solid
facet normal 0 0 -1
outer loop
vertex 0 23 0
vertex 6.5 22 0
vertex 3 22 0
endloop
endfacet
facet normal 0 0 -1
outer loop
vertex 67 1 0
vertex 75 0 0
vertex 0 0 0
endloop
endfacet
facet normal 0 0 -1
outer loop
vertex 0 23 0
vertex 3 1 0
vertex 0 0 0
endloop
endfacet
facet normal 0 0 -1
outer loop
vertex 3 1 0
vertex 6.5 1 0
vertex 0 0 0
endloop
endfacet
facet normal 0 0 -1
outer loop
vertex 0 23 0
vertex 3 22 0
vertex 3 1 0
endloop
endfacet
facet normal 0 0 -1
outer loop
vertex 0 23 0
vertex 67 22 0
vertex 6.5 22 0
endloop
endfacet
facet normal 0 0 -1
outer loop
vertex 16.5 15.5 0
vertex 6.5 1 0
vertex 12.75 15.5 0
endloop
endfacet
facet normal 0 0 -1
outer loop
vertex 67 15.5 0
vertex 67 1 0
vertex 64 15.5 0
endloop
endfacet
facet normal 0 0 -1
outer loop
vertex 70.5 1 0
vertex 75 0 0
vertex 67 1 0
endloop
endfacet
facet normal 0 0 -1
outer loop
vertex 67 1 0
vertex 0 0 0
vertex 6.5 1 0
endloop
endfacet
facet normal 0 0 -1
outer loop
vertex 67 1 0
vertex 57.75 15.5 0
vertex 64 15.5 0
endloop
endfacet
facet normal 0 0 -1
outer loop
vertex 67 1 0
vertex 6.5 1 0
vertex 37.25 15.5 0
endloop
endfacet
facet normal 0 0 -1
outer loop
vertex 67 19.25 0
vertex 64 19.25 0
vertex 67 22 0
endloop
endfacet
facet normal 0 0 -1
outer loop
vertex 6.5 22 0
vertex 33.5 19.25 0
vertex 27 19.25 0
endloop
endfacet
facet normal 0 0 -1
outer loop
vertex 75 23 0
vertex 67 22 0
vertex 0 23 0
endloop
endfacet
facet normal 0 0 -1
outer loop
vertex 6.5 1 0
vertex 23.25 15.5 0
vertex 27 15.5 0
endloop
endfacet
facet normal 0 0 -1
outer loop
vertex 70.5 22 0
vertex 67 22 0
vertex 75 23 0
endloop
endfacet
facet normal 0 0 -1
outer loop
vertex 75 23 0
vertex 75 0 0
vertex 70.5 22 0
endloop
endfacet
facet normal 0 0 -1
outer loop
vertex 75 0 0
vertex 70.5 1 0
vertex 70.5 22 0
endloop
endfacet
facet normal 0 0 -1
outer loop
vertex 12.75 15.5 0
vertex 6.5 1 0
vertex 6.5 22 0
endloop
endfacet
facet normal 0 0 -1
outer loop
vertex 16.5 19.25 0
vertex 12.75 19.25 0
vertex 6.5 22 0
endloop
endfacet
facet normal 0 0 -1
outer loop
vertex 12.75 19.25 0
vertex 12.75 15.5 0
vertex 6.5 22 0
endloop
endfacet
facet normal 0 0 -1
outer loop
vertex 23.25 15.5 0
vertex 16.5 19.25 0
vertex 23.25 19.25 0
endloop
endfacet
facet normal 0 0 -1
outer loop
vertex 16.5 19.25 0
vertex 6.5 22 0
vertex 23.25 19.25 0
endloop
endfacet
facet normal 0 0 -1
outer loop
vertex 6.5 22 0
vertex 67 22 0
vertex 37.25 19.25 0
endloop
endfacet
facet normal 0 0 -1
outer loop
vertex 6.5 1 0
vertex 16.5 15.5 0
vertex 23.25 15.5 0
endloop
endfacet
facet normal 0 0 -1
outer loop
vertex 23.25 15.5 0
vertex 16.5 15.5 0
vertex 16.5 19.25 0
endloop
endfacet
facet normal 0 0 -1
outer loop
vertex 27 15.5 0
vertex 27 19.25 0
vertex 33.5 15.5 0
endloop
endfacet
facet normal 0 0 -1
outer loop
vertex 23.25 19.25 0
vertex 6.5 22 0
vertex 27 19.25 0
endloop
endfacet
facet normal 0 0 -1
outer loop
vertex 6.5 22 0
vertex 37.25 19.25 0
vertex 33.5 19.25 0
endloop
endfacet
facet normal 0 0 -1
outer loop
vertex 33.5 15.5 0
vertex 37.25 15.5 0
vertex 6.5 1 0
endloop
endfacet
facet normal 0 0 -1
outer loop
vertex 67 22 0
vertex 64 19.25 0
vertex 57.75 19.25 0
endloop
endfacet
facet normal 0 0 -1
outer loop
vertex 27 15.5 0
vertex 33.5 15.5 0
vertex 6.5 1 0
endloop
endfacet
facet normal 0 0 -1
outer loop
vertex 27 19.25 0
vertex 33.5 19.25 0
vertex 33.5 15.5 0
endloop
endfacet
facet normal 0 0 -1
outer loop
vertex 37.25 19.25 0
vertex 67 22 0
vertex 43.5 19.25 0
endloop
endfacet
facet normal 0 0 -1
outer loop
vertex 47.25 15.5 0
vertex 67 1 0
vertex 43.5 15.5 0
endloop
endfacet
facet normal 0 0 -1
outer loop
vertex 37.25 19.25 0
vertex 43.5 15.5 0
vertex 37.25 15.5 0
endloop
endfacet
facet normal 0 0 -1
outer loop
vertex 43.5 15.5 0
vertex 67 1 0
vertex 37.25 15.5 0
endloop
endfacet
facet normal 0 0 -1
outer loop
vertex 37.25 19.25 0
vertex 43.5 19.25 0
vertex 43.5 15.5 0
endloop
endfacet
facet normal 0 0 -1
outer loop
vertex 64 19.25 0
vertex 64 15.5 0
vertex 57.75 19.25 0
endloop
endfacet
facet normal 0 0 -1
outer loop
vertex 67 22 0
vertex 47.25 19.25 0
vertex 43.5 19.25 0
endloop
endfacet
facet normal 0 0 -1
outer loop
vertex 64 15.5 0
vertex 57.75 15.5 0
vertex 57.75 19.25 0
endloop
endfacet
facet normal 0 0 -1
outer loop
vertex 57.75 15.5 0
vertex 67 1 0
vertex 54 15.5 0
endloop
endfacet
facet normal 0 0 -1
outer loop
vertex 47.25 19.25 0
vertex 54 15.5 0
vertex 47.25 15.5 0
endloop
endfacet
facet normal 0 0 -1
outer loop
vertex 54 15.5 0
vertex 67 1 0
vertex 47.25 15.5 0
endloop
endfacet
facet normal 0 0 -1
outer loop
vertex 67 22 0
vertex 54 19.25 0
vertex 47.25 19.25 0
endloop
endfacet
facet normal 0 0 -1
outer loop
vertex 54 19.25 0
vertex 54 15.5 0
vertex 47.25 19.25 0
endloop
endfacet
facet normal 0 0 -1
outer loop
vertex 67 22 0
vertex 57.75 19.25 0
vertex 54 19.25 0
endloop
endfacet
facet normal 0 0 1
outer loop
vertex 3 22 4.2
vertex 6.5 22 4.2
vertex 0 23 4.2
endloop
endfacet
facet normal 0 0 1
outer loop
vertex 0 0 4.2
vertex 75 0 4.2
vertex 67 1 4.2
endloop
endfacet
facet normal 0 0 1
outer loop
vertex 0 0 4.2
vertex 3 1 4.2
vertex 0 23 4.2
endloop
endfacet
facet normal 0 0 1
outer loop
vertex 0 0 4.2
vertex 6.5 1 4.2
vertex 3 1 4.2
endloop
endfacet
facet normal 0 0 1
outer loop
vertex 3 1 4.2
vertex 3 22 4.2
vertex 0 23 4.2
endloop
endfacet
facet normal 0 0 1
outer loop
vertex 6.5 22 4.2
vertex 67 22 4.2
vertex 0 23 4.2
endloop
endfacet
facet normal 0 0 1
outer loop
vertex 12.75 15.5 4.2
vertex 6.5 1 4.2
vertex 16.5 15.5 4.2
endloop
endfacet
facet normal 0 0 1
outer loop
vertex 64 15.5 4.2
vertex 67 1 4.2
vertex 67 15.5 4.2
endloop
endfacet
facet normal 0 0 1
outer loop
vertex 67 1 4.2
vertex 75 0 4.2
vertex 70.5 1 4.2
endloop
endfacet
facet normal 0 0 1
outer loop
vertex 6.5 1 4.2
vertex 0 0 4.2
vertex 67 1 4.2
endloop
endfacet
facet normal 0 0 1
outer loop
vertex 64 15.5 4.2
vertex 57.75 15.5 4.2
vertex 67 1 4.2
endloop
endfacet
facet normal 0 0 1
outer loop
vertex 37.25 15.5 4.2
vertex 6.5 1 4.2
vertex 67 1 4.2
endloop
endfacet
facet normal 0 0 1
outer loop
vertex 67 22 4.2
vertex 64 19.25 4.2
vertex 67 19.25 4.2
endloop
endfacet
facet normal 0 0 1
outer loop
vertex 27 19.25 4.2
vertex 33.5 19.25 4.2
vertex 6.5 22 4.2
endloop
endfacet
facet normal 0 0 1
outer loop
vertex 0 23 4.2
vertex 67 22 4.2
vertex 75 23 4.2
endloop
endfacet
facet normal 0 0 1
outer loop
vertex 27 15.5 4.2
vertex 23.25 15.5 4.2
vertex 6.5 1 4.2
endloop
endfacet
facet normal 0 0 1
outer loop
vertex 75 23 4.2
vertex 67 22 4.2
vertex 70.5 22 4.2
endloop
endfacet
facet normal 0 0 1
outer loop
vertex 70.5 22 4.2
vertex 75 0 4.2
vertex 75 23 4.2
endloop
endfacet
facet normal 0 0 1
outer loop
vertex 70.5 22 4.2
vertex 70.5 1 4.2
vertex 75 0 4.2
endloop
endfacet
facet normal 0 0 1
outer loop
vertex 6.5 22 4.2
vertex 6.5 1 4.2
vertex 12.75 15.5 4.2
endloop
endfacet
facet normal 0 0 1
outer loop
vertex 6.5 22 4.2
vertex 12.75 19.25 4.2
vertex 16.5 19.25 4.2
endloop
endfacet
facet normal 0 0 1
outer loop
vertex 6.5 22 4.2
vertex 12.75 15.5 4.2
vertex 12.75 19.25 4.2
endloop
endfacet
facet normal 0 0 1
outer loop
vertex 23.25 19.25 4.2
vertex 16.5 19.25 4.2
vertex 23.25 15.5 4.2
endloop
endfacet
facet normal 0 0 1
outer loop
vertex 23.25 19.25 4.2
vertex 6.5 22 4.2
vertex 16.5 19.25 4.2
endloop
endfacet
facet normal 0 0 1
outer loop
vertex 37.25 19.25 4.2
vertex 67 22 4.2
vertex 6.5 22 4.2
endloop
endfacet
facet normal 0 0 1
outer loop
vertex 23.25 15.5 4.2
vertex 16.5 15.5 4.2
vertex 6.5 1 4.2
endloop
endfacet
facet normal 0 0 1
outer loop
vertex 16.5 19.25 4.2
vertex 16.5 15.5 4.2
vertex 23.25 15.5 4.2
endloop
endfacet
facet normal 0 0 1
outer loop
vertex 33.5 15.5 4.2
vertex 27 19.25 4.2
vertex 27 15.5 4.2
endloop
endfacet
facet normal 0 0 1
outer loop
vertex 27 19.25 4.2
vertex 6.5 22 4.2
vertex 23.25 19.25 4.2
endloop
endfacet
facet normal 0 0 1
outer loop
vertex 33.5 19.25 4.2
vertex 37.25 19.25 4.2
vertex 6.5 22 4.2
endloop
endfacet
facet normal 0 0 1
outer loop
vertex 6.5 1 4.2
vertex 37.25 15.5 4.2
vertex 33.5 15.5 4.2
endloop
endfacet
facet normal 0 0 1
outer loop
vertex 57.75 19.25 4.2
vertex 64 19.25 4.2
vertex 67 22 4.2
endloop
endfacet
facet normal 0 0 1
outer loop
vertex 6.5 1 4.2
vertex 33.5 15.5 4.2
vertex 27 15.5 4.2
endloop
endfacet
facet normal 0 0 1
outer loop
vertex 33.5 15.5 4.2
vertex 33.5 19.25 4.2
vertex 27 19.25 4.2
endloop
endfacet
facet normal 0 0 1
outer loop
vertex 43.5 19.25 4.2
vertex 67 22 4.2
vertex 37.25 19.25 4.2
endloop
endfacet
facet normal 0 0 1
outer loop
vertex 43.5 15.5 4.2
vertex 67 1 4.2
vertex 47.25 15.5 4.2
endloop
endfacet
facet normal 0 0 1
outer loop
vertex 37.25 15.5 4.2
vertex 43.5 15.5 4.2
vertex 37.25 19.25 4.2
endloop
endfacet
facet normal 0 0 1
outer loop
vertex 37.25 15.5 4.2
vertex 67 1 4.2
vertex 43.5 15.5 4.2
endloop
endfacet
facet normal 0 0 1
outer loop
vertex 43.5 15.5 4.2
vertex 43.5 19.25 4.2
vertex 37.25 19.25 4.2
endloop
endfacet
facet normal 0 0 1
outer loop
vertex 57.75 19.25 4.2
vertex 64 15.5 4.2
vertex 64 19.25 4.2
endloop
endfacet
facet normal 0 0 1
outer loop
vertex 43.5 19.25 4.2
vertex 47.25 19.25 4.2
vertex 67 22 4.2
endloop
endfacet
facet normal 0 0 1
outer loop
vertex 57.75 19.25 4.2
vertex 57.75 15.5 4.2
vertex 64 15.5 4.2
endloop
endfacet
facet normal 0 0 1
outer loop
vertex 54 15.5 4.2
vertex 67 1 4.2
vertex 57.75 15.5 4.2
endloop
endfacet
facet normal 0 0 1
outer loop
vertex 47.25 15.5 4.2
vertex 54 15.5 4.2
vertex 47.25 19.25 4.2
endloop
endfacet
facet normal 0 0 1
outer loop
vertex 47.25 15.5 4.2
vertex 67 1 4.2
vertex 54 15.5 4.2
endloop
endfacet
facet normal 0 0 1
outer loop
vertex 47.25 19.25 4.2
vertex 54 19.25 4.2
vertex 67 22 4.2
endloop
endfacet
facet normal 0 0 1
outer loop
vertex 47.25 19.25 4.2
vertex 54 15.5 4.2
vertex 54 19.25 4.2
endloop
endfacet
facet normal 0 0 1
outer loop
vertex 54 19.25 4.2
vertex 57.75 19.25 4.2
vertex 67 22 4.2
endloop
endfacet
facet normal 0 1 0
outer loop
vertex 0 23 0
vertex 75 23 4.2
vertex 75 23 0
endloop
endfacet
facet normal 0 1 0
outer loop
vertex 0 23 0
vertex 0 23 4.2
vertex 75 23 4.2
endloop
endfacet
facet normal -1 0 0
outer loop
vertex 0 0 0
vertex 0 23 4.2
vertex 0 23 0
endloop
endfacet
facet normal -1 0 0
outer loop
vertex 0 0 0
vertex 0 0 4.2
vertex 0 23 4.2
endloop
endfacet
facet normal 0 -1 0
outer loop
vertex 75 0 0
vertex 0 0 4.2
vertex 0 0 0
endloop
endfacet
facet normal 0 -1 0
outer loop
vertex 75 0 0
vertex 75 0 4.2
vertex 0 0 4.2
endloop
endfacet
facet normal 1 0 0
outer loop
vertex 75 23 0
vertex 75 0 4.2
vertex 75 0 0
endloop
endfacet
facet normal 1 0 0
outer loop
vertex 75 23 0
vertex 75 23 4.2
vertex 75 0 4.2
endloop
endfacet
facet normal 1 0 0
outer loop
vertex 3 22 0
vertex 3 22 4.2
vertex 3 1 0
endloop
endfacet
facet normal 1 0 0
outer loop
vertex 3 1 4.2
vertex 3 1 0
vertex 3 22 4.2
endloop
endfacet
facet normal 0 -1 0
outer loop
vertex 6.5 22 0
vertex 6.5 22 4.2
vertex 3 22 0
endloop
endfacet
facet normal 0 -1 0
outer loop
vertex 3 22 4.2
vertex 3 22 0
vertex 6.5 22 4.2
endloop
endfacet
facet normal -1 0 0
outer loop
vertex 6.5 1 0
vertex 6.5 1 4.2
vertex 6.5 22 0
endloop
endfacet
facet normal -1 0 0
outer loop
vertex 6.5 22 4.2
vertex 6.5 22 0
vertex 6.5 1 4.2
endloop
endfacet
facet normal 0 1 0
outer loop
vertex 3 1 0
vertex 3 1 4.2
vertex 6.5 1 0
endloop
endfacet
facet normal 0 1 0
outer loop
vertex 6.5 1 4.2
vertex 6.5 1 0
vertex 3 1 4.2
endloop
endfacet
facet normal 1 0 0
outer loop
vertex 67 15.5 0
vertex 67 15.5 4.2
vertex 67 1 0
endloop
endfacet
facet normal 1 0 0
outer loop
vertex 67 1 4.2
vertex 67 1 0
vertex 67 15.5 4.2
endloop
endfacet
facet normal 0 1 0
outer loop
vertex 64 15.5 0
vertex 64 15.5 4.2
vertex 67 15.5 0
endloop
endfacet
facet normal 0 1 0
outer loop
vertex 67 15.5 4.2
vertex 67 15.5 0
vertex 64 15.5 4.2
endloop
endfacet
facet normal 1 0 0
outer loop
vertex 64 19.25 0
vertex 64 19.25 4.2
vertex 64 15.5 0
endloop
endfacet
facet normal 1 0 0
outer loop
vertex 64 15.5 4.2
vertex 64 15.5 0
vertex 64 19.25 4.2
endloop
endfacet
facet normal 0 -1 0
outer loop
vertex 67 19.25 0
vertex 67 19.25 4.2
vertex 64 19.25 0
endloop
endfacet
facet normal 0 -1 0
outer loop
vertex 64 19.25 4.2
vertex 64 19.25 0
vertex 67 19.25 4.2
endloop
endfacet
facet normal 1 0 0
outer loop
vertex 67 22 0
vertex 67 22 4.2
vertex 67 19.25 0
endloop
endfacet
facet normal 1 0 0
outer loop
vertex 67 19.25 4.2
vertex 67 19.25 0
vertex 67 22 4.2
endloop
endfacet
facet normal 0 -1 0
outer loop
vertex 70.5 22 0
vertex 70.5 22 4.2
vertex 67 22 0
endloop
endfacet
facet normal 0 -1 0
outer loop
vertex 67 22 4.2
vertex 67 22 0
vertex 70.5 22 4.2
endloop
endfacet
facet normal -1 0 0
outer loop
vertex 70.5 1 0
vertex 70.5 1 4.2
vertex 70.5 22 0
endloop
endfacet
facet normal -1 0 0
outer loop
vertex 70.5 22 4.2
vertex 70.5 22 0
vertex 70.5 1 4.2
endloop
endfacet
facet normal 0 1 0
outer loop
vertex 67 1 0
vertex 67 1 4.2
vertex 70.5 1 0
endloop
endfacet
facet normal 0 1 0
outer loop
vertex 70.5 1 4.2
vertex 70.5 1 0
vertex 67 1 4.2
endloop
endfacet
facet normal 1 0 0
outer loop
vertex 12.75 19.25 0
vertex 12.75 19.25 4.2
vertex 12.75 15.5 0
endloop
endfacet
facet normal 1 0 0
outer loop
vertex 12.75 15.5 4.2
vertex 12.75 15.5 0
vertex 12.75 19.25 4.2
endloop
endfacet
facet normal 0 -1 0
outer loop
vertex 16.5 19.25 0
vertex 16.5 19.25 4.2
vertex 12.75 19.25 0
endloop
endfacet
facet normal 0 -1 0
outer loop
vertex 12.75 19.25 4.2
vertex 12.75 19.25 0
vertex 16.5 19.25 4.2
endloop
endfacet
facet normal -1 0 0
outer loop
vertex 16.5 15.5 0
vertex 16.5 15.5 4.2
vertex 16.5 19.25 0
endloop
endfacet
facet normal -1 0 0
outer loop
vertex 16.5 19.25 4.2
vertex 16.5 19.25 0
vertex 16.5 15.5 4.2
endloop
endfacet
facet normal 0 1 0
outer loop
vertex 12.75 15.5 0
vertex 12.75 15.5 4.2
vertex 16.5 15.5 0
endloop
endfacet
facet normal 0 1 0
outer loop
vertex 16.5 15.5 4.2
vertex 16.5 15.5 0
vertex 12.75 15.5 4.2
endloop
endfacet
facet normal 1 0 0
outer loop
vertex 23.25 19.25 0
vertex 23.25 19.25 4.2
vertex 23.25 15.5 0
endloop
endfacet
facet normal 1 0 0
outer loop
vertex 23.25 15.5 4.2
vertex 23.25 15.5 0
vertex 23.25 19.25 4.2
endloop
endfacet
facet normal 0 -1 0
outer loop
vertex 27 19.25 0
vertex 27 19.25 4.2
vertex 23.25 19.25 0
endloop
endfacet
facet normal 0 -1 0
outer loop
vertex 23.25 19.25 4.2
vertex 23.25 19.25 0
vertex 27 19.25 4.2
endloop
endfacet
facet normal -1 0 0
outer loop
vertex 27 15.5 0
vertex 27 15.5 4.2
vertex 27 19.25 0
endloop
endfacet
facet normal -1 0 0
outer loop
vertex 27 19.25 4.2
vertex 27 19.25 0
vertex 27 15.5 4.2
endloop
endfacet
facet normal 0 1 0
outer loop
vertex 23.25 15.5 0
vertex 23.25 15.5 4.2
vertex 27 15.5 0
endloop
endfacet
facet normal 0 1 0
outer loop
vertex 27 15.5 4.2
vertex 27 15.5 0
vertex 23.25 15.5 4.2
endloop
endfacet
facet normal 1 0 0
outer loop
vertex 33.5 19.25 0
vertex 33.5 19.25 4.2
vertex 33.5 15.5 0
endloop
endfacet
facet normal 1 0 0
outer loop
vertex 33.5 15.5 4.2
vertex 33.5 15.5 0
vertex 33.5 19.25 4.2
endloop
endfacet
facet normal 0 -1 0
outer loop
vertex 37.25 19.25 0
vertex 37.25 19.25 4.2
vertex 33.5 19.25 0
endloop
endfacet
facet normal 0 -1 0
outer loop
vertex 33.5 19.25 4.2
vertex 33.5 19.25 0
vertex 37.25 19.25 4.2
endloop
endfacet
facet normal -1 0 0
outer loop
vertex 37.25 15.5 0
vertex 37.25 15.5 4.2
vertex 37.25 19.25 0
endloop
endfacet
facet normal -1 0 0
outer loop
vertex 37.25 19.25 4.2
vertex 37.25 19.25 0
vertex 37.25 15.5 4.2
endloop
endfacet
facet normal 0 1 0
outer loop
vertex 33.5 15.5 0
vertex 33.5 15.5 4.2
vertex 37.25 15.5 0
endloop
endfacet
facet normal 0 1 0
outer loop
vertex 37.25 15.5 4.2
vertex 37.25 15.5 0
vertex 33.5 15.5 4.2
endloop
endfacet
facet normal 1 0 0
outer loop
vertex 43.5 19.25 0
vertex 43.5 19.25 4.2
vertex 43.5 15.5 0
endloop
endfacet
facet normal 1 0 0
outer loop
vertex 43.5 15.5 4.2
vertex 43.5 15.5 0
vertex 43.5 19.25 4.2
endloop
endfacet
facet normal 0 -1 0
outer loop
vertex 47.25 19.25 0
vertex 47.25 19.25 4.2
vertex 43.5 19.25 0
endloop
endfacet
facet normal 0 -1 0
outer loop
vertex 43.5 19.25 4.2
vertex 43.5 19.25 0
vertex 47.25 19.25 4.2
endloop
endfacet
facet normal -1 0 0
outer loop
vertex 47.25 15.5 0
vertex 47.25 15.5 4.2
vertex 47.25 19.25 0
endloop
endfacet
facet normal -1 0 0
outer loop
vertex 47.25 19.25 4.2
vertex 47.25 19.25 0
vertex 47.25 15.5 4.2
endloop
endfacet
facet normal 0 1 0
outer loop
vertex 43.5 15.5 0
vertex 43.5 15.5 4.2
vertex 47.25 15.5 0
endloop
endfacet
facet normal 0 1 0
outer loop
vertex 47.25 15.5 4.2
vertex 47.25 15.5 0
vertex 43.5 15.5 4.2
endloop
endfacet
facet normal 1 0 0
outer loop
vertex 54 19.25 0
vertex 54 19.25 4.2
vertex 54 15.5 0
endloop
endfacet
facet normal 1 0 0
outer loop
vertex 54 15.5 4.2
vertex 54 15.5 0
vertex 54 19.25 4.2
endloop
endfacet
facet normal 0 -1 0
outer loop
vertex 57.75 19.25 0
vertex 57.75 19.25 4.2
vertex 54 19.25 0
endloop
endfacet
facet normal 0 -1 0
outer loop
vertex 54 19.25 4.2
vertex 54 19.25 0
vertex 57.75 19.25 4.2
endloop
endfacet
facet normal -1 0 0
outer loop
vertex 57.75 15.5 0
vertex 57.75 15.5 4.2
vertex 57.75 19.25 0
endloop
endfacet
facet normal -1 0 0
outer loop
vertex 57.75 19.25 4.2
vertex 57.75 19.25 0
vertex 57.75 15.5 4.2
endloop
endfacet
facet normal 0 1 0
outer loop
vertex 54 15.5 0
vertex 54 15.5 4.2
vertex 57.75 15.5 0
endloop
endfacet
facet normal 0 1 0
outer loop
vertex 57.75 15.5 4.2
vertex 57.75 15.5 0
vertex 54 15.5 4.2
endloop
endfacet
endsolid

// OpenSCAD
linear_extrude( 4.2 )   // Measured the depth of a working board's pins
{
  difference()
  {
    green_board_height=23.0;
    
    square( [75, green_board_height] );
    
    _8_pins_height = 21.0;
    translate( [3, 1, 0] )           // 3 in, 1 up
      square( [3.5, _8_pins_height] ); //3mm is width of a row of pins.

    hole_diameter = 3.75;
    translate( [12.75, 15.5, 0] )  //Leftmost pin hole
      square( [hole_diameter, hole_diameter] );
  
    translate( [23.25, 15.5, 0] )  
      square( [hole_diameter, hole_diameter] );

    translate( [33.5, 15.5, 0] ) 
      square( [hole_diameter, hole_diameter] );

    translate( [43.5, 15.5, 0] )  
      square( [hole_diameter, hole_diameter] );

    translate( [54.0, 15.5, 0] )  
      square( [hole_diameter, hole_diameter] );

    translate( [64.0, 15.5, 0] )  
      square( [hole_diameter, hole_diameter] );

    translate( [67.0, 1, 0] )        
      square( [3.5, _8_pins_height] ); 

  }
}
